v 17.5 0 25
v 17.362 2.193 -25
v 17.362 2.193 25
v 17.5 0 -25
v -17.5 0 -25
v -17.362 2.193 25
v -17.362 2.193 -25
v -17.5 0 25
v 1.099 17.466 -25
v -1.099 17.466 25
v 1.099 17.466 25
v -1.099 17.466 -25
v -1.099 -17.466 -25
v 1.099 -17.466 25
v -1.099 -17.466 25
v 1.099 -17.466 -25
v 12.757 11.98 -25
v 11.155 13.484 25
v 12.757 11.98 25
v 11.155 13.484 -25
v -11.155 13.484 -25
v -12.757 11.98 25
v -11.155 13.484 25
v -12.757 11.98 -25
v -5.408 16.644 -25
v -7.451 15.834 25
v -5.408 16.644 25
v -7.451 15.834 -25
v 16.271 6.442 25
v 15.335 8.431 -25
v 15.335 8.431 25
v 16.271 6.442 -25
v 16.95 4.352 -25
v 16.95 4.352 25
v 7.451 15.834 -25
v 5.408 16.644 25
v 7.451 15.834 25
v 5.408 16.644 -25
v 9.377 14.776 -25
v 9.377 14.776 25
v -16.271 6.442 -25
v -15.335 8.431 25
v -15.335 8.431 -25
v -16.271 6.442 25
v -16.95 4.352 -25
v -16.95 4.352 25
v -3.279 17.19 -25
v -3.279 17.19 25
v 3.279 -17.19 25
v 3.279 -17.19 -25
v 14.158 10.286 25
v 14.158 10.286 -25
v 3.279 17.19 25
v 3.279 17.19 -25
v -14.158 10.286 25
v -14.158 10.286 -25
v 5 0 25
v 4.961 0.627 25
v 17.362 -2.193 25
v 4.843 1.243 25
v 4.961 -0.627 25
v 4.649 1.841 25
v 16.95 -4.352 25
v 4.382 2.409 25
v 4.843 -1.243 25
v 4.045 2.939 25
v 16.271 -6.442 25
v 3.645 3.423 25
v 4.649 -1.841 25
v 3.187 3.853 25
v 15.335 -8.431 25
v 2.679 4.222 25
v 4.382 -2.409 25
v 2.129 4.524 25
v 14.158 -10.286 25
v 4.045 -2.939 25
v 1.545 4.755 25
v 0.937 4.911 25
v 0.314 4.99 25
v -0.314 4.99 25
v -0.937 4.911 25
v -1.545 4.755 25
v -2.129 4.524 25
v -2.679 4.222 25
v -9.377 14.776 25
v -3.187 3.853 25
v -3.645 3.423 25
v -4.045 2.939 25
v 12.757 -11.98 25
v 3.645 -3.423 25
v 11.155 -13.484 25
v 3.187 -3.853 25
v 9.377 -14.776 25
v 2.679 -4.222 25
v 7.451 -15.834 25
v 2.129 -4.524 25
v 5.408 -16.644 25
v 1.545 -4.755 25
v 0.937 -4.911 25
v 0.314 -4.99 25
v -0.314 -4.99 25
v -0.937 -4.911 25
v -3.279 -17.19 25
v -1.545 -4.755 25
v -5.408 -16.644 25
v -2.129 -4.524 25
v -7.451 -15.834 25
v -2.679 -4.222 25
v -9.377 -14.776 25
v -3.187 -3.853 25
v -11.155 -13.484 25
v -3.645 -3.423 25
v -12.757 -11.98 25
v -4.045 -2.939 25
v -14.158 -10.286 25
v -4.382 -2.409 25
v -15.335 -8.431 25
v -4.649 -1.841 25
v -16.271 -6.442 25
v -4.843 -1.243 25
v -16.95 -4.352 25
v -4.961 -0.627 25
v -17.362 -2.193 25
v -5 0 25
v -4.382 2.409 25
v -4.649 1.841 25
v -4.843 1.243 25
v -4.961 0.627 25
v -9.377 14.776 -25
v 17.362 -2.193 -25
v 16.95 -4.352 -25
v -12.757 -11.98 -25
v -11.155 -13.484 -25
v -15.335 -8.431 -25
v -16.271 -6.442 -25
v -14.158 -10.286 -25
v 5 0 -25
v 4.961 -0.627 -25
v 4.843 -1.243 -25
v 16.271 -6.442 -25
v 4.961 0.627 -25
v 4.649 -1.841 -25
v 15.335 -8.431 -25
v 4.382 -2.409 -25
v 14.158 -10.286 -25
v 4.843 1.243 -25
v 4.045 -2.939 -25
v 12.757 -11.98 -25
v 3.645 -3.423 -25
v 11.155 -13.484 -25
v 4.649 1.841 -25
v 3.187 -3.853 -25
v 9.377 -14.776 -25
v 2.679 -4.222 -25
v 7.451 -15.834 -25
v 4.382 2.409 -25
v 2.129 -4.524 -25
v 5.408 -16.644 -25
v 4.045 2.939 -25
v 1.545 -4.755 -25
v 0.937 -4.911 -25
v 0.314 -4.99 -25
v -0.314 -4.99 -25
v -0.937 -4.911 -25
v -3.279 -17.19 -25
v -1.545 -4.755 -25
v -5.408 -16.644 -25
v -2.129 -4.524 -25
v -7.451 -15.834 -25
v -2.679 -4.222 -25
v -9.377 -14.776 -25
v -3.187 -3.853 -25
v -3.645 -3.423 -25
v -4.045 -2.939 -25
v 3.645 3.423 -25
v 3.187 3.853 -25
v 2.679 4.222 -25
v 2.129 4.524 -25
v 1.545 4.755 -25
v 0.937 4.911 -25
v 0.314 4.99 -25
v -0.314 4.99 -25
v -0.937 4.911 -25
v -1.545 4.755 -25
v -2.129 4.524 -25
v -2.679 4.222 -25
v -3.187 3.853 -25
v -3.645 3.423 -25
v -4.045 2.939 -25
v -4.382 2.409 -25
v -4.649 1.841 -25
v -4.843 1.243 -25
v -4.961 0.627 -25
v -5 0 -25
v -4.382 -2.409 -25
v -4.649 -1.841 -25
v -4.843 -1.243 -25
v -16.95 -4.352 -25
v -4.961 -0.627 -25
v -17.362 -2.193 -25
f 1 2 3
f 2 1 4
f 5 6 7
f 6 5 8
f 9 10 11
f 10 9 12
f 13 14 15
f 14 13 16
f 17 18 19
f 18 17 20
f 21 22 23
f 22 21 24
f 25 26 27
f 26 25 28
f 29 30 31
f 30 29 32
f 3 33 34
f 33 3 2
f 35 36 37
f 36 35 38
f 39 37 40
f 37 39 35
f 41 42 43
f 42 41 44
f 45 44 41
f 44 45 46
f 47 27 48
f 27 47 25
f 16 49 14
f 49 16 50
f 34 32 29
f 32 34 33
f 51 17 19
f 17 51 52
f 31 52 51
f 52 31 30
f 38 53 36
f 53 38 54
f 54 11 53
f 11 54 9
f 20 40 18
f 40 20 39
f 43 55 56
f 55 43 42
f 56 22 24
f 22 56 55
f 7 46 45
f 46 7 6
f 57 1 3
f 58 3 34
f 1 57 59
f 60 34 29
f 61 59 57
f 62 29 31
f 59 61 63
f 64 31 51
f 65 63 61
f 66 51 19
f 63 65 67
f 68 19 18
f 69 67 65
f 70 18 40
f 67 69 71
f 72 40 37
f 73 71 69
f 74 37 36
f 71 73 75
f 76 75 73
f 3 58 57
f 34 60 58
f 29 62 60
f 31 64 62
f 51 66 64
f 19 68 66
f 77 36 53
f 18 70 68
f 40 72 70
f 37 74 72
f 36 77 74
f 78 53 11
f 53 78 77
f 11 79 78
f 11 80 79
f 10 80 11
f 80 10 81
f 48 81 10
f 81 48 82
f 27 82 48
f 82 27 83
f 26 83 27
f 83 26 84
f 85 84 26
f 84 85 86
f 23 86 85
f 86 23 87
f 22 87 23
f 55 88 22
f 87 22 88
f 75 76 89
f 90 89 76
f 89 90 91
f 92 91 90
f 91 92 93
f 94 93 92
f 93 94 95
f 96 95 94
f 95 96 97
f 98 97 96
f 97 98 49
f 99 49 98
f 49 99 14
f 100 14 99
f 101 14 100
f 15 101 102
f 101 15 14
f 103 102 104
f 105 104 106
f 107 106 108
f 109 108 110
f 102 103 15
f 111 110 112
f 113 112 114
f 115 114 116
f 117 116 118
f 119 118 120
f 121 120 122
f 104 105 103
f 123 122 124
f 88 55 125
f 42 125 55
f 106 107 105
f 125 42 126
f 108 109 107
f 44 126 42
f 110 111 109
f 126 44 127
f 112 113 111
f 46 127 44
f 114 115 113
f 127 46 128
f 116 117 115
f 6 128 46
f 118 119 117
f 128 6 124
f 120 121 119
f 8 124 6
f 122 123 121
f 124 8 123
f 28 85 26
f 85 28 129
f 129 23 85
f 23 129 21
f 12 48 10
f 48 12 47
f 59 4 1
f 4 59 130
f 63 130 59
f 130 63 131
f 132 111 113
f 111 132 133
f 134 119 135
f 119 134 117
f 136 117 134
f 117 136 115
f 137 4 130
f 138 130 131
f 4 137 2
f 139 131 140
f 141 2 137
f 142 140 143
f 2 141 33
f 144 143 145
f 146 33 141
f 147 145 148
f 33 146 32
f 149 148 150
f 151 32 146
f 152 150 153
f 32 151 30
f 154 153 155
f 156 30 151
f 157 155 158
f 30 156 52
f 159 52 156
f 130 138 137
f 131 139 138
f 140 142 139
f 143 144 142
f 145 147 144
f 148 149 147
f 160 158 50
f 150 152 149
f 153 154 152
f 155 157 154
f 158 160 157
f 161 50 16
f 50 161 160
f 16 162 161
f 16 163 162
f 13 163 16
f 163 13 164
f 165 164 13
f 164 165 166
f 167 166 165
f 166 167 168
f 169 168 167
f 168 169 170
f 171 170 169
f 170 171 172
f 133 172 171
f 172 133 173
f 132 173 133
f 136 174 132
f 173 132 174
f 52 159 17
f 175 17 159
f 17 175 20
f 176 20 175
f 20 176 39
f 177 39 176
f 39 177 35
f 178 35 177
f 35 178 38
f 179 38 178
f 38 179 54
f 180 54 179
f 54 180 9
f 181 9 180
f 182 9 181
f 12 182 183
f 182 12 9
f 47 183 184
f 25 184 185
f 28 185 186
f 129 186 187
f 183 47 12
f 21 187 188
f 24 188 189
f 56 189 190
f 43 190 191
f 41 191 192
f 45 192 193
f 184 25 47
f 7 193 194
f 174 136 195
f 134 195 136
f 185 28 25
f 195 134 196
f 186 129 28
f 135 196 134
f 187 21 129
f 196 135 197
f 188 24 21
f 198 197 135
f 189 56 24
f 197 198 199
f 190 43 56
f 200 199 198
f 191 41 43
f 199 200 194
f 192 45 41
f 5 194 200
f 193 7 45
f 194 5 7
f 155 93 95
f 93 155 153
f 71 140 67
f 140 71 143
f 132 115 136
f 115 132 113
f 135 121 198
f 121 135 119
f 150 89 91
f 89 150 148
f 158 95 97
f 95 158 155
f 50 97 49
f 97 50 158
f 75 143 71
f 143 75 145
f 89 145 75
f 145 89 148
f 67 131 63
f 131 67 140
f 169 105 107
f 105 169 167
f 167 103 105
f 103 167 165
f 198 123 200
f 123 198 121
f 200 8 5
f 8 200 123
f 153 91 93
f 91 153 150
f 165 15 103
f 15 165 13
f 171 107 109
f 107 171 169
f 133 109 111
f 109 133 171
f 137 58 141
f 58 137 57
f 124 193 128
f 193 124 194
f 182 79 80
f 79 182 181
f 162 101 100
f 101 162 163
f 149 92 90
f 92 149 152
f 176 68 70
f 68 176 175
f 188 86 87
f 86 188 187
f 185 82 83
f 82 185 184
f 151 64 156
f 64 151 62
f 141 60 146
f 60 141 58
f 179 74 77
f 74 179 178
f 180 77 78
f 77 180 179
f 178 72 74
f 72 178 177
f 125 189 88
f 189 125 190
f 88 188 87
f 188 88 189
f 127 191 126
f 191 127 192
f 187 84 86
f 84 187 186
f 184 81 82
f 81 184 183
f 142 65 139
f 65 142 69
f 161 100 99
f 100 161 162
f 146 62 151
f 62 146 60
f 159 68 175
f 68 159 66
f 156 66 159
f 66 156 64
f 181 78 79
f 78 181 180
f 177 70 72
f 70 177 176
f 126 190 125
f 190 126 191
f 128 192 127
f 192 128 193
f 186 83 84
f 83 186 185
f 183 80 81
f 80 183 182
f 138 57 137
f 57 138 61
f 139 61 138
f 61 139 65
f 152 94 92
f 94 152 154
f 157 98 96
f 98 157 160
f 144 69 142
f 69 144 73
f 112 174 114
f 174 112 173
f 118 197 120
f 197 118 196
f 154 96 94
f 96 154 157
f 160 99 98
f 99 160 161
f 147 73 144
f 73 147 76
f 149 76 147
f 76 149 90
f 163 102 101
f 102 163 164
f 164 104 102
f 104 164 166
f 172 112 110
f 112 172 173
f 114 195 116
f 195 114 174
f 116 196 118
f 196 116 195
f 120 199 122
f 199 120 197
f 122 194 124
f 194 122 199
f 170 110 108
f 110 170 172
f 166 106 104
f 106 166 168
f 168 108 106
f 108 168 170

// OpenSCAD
$fn = 50;


difference() {
	union() {
		translate(v = [0, 0, -25.0000000000]) {
			cylinder(h = 50, r = 17.5000000000);
		}
	}
	union() {
		translate(v = [0, 0, -100.0000000000]) {
			cylinder(h = 200, r = 5);
		}
	}
}
